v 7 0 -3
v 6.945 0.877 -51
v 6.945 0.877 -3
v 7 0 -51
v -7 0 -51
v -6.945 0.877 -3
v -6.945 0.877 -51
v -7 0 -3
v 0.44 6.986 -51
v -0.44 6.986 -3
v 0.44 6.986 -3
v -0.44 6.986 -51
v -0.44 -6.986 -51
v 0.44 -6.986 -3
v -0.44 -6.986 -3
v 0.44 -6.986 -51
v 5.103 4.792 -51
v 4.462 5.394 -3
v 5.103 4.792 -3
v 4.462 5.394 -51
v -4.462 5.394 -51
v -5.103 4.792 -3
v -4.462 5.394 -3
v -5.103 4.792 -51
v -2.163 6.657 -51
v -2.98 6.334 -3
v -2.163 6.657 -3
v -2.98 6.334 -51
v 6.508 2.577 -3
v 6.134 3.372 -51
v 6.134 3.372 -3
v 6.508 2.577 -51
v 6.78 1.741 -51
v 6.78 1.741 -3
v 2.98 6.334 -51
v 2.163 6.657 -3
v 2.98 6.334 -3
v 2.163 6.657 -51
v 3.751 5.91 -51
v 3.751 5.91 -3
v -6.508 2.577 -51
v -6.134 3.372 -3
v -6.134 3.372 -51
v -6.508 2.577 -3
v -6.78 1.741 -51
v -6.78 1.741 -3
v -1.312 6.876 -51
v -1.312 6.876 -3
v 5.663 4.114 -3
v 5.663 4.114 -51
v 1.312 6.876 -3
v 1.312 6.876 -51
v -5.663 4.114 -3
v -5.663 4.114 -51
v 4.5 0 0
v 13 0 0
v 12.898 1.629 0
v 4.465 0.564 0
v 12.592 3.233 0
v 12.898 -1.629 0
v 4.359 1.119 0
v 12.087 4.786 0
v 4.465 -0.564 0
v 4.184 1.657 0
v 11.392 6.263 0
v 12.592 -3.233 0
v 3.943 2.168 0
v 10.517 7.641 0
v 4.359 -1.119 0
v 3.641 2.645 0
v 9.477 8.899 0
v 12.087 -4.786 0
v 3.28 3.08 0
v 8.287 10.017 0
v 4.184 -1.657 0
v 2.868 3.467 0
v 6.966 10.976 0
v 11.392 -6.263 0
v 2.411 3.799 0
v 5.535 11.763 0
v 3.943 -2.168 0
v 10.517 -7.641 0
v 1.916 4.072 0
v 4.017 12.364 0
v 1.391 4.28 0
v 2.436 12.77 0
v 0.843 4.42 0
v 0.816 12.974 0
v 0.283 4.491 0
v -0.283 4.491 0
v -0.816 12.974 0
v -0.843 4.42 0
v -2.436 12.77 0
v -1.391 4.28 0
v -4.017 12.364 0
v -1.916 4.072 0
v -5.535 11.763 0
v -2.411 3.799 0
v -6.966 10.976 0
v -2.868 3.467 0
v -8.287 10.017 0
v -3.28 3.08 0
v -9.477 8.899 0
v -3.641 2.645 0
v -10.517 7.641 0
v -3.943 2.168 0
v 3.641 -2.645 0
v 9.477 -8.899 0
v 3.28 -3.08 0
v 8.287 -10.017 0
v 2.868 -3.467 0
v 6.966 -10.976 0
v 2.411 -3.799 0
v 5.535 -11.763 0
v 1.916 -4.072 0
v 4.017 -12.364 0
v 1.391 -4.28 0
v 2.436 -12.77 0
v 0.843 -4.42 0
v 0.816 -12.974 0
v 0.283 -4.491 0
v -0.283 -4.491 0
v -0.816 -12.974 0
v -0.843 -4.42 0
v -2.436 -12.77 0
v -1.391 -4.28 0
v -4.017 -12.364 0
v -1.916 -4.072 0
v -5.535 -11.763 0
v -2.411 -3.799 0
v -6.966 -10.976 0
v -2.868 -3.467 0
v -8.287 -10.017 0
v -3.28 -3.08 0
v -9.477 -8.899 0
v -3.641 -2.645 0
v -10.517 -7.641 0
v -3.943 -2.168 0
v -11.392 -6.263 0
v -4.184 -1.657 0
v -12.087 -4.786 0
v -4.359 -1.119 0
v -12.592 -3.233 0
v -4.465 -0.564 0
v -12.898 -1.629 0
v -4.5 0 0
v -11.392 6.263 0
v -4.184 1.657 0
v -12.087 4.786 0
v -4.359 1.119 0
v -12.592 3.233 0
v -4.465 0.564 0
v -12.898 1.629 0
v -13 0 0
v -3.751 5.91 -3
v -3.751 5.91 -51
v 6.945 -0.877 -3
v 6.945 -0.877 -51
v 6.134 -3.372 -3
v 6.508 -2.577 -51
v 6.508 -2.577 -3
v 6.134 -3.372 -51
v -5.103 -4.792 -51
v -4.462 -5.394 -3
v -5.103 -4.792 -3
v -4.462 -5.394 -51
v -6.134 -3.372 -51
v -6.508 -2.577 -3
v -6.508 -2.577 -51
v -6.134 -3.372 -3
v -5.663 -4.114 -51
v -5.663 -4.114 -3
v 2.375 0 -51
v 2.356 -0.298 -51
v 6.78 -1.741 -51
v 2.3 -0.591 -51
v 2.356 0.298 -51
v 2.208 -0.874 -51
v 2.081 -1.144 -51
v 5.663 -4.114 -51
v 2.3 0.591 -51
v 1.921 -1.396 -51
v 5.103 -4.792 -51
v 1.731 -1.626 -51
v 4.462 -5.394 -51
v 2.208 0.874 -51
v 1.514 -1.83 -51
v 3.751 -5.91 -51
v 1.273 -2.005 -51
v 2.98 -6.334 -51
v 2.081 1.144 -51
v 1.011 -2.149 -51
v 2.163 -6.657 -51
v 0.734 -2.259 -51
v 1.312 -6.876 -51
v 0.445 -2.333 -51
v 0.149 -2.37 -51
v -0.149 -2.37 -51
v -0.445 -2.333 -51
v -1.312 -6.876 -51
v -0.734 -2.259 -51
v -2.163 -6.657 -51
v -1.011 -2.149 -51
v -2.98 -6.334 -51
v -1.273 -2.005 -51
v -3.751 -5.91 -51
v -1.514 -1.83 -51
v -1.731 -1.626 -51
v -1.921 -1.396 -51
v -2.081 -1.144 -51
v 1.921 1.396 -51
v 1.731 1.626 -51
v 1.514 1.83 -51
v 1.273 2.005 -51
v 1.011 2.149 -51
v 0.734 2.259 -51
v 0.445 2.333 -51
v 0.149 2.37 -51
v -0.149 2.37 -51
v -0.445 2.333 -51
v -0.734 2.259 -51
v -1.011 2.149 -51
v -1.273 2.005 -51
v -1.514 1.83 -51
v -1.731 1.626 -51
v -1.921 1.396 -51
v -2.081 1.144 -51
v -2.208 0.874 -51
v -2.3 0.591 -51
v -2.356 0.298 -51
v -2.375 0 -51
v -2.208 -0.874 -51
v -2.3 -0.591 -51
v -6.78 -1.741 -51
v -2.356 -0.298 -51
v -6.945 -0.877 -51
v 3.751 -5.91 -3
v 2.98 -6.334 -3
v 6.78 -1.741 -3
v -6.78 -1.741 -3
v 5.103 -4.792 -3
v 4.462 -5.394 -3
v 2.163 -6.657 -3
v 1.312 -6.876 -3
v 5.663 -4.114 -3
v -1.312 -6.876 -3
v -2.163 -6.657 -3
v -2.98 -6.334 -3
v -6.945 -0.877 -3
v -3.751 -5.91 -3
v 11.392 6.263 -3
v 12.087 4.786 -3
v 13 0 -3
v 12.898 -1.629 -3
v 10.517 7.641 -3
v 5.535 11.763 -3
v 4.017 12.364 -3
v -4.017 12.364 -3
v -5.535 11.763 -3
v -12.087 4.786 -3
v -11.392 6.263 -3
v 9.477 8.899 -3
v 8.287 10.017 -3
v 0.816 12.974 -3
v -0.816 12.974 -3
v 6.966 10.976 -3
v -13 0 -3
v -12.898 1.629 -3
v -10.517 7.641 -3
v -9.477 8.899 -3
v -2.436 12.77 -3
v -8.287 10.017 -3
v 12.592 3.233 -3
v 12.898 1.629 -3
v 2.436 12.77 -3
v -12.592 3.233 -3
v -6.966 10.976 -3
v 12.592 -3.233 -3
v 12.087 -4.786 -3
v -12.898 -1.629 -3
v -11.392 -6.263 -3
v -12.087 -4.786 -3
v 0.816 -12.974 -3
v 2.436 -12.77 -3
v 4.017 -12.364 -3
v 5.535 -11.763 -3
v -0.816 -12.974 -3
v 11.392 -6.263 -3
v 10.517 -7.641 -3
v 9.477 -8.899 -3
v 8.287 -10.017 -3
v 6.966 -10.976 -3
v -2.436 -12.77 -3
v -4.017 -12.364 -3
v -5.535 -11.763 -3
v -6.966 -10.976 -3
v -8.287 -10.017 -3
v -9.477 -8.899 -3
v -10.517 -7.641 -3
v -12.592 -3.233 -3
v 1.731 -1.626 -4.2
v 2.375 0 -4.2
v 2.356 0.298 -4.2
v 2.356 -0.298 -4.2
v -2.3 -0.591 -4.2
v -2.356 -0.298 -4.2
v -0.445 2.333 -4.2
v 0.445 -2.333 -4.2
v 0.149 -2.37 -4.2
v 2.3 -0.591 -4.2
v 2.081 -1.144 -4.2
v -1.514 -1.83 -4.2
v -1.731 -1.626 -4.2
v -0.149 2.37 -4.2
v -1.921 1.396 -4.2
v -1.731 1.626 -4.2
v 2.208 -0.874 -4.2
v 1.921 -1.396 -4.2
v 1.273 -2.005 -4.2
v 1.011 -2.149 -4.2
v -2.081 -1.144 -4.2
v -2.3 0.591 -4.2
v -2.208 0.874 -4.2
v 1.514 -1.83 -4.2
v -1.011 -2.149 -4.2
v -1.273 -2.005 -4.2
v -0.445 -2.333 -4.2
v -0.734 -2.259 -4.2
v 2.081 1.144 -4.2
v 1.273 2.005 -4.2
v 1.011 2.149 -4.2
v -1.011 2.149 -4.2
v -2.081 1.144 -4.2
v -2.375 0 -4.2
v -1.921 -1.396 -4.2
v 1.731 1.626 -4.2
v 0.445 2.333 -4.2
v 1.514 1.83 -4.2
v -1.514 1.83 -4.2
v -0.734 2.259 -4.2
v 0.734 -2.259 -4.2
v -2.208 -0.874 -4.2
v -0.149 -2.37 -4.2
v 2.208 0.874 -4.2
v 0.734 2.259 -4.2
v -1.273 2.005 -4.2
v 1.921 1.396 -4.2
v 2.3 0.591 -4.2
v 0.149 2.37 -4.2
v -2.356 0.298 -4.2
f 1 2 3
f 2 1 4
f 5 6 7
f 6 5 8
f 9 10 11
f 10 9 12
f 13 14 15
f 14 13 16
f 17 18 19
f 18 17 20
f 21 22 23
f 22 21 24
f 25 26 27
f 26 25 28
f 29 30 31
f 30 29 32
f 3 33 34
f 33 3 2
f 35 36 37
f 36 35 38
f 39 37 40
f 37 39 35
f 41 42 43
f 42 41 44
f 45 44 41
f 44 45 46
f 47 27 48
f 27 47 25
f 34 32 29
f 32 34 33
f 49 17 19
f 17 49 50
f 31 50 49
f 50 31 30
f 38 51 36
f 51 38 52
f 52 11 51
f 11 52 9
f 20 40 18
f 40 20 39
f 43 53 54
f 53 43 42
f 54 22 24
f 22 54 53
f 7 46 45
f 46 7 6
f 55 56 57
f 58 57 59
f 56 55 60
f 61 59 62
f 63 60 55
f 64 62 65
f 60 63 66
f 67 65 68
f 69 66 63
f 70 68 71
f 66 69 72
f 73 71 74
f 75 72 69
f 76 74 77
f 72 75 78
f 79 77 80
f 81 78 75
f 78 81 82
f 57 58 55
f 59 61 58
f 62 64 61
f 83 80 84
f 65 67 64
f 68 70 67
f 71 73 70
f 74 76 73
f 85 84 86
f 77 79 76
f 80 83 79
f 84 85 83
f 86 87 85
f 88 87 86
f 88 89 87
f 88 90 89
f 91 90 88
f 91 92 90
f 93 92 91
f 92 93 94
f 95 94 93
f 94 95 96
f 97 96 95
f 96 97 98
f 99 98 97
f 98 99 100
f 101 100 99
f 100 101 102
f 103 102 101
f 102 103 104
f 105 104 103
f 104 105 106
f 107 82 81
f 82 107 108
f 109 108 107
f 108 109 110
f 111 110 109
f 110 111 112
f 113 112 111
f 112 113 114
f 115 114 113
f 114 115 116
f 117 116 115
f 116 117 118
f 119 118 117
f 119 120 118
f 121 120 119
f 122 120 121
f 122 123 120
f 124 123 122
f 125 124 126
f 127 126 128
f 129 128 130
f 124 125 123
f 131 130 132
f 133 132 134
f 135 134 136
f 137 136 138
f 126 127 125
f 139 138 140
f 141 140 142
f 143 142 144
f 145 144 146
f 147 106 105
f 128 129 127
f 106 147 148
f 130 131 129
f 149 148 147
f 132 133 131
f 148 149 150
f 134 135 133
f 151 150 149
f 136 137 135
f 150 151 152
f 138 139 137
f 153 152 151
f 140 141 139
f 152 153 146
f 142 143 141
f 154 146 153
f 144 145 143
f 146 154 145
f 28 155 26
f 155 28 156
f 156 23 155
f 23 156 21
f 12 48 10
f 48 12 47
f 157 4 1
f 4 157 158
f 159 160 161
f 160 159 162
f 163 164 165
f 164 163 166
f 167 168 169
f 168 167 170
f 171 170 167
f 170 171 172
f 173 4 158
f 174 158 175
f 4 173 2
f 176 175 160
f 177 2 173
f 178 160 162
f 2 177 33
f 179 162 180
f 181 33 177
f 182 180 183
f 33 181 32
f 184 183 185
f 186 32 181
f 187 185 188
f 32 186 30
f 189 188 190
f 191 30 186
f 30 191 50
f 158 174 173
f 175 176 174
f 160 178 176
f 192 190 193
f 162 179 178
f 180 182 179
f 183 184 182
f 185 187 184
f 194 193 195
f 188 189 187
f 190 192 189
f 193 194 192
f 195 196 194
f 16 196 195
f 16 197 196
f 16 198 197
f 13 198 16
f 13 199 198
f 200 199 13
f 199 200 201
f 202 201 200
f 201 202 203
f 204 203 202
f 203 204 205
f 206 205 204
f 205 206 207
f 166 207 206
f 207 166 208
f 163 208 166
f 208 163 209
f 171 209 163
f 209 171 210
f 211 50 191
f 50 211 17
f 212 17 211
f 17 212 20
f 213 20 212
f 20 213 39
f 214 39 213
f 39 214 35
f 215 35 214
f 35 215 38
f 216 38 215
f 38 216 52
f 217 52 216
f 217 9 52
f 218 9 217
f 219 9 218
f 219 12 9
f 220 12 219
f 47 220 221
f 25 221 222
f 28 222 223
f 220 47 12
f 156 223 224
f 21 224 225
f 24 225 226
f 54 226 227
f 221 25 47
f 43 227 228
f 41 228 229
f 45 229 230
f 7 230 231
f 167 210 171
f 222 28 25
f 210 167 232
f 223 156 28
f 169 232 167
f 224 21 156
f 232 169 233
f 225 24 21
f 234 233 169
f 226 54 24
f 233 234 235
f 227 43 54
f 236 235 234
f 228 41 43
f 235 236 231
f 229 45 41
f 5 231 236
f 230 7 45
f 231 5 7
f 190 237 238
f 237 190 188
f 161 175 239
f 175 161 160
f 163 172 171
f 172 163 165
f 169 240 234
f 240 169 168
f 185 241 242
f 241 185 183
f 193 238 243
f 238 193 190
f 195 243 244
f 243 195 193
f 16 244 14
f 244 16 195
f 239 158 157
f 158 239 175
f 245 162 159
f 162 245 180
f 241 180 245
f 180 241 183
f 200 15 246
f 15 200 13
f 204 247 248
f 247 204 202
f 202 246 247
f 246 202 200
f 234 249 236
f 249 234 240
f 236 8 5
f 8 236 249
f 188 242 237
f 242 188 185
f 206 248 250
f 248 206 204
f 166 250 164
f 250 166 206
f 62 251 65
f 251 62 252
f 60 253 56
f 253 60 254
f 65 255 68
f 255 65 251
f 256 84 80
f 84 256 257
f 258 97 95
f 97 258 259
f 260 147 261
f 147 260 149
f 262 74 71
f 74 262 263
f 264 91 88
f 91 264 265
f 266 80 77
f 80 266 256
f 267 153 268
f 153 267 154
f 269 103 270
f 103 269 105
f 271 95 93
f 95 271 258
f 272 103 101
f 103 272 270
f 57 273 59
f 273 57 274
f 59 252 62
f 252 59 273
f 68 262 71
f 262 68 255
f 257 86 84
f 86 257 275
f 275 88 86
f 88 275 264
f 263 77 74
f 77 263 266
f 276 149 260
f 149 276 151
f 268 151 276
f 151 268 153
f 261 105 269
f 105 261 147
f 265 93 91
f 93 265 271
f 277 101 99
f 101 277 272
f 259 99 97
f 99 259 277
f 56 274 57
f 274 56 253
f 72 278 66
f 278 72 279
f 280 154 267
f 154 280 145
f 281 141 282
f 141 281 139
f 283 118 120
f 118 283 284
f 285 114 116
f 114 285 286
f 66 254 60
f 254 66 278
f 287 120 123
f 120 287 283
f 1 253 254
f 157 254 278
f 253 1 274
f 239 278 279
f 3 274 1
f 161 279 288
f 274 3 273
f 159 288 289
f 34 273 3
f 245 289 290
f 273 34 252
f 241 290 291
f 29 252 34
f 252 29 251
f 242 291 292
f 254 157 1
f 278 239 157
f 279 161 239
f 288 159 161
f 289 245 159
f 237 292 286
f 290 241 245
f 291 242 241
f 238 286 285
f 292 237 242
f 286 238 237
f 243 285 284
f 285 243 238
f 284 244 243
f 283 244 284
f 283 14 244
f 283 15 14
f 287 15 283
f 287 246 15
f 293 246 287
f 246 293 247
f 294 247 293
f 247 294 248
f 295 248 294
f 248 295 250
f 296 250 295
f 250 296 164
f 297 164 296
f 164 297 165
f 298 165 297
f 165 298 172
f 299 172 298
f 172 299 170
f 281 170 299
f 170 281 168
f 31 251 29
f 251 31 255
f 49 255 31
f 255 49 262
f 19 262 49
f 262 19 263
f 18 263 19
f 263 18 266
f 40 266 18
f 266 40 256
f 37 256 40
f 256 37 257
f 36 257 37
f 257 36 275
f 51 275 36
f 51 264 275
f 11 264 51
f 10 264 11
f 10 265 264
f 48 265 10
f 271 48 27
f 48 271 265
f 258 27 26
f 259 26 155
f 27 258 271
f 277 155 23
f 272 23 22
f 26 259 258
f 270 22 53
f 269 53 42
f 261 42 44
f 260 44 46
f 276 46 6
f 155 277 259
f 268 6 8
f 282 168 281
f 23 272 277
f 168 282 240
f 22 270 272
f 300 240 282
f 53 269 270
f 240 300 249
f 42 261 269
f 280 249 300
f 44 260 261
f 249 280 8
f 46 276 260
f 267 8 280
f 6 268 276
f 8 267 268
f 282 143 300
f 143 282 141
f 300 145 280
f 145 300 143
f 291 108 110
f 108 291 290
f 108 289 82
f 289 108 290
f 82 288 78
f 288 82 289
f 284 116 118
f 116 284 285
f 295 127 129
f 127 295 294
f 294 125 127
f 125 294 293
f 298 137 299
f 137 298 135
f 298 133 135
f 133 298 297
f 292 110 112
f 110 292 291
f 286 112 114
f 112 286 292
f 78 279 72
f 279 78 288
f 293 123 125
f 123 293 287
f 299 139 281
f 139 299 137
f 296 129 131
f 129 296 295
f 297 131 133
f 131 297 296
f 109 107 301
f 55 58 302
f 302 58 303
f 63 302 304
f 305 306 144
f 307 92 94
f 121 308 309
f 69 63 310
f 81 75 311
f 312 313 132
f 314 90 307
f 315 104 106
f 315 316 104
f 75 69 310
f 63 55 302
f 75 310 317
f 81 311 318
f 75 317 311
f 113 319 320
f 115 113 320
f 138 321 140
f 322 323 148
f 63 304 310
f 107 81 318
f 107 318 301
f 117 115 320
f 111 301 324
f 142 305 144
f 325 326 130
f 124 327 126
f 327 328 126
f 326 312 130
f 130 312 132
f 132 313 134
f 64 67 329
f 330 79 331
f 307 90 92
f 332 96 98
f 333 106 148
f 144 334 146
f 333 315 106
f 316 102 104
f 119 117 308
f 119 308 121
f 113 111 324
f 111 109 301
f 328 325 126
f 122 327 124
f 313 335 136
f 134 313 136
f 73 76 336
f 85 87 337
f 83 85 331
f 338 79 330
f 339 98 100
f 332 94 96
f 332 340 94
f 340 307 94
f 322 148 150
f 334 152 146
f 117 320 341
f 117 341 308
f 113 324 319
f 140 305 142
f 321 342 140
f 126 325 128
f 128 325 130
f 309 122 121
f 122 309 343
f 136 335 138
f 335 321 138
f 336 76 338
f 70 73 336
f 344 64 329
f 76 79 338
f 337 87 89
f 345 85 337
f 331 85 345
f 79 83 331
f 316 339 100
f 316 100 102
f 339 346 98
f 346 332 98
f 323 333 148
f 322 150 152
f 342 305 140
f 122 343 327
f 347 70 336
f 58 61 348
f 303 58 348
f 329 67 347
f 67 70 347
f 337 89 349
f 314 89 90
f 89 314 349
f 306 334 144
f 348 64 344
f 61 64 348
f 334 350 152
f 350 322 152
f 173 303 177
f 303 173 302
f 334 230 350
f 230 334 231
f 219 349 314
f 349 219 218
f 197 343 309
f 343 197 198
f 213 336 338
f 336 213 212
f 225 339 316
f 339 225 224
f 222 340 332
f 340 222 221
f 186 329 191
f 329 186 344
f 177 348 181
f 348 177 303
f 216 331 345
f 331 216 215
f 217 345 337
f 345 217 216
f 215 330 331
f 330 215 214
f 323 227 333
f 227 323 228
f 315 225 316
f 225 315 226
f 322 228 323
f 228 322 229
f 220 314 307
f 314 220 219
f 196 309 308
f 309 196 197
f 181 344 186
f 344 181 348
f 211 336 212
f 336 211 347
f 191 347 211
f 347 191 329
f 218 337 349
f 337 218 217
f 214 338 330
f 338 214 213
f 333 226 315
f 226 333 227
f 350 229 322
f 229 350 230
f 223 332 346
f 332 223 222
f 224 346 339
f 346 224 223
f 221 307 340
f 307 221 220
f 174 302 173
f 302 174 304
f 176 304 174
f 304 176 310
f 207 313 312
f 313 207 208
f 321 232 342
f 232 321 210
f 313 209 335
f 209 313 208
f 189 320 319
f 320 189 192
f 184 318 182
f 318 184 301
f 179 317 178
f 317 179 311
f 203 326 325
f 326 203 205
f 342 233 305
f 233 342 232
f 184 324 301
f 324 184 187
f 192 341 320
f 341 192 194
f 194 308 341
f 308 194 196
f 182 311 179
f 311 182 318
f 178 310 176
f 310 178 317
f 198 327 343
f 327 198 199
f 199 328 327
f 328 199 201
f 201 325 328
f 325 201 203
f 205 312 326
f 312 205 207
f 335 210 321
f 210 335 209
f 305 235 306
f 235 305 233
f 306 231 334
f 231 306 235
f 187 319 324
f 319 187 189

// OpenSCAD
$fn = 50;


difference() {
	union() {
		translate(v = [0, 0, -51.0000000000]) {
			cylinder(h = 51, r = 7.0000000000);
		}
		translate(v = [0, 0, -3.0000000000]) {
			cylinder(h = 3, r = 13.0000000000);
		}
	}
	union() {
		translate(v = [0, 0, 0]) {
			rotate(a = [0, 0, 0]) {
				difference() {
					union() {
						#translate(v = [0, 0, -51.0000000000]) {
							cylinder(h = 51, r = 2.2500000000);
						}
						#translate(v = [0, 0, -4.2000000000]) {
							cylinder(h = 4.2000000000, r1 = 2.3750000000, r2 = 4.5000000000);
						}
						#translate(v = [0, 0, -51.0000000000]) {
							cylinder(h = 51, r = 2.3750000000);
						}
						#translate(v = [0, 0, -51.0000000000]) {
							cylinder(h = 51, r = 2.2500000000);
						}
					}
					union();
				}
			}
		}
	}
}
